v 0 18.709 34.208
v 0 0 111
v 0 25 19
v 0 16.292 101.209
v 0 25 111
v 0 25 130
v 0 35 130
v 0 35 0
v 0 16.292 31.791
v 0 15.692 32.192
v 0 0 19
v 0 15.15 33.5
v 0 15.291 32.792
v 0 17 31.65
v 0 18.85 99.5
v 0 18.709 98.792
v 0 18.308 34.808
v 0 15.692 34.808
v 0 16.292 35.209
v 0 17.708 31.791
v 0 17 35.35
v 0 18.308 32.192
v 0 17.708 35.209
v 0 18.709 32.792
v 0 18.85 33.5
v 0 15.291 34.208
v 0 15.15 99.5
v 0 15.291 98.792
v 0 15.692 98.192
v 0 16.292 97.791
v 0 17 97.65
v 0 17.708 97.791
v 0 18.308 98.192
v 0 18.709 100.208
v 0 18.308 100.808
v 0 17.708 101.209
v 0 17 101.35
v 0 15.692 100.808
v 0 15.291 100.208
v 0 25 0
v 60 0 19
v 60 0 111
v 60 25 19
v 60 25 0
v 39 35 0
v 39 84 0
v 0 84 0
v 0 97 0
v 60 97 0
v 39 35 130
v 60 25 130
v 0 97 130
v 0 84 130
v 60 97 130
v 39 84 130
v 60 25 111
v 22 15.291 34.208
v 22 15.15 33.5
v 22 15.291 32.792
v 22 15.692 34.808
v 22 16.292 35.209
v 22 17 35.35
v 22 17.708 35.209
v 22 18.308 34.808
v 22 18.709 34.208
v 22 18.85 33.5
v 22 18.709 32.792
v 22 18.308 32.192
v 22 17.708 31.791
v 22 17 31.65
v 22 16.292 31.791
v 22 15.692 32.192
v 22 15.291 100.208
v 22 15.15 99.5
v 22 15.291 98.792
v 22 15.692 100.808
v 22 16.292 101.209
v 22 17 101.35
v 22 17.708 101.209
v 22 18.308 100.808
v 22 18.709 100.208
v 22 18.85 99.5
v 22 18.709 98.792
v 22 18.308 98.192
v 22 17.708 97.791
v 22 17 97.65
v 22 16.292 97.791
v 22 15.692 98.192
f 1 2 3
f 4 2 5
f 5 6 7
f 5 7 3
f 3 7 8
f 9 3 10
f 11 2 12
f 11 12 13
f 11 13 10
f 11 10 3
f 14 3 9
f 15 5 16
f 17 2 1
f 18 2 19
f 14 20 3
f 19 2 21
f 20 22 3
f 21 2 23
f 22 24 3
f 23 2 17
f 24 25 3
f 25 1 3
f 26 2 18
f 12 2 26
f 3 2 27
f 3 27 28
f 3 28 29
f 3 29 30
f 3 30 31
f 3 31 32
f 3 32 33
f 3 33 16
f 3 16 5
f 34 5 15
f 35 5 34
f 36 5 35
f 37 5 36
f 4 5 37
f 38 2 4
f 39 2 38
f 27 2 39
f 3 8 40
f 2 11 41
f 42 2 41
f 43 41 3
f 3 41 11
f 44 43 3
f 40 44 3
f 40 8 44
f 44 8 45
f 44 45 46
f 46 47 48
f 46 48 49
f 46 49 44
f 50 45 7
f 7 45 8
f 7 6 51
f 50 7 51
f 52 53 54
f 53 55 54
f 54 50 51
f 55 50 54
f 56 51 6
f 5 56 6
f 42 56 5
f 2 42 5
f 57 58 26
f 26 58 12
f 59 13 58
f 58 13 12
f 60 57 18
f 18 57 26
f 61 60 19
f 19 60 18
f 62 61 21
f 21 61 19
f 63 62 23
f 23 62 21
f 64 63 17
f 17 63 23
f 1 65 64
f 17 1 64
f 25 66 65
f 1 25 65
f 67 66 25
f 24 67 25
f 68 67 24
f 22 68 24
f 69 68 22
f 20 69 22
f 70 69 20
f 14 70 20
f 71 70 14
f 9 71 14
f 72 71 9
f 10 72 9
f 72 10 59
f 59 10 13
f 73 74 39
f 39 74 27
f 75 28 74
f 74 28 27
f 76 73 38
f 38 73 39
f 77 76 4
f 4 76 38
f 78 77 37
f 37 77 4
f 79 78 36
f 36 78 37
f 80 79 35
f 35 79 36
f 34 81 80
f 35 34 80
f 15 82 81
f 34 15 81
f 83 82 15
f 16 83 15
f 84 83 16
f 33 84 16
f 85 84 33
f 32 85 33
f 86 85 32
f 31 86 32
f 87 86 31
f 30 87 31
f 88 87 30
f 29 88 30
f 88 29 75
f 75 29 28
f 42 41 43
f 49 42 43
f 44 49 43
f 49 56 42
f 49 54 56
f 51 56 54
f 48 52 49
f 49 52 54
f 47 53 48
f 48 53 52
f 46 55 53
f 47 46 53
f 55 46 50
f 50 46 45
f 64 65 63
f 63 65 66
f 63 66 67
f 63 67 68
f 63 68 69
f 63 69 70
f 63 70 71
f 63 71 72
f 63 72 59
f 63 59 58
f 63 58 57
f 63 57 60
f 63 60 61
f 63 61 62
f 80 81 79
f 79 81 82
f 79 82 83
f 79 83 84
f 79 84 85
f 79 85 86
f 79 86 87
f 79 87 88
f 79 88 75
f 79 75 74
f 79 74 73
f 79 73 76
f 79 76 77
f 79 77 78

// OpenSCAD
difference() {
	cube( [ 60,104-7,130 ] );
	translate( [39-50,35,-2] ) cube( [ 50, 49, 150 ] );
	translate( [-1,-1,130-20+1] ) cube( [ 70, 25+1, 20 ] );
	translate( [-1,-1,-1] ) cube( [ 70, 25+1, 20 ] );

	translate( [-1,34/2,(130-87)/2+12] )
	rotate(90,[0,1,0])
	cylinder( r=1.85, h=23, $fn=16 );

	translate( [-1,34/2,(130-87)/2+12+66] )
	rotate(90,[0,1,0])
	cylinder( r=1.85, h=23, $fn=16 );
}
*translate( [-15,0,(130-87)/2] ) cube( [ 15,34,87 ] );
